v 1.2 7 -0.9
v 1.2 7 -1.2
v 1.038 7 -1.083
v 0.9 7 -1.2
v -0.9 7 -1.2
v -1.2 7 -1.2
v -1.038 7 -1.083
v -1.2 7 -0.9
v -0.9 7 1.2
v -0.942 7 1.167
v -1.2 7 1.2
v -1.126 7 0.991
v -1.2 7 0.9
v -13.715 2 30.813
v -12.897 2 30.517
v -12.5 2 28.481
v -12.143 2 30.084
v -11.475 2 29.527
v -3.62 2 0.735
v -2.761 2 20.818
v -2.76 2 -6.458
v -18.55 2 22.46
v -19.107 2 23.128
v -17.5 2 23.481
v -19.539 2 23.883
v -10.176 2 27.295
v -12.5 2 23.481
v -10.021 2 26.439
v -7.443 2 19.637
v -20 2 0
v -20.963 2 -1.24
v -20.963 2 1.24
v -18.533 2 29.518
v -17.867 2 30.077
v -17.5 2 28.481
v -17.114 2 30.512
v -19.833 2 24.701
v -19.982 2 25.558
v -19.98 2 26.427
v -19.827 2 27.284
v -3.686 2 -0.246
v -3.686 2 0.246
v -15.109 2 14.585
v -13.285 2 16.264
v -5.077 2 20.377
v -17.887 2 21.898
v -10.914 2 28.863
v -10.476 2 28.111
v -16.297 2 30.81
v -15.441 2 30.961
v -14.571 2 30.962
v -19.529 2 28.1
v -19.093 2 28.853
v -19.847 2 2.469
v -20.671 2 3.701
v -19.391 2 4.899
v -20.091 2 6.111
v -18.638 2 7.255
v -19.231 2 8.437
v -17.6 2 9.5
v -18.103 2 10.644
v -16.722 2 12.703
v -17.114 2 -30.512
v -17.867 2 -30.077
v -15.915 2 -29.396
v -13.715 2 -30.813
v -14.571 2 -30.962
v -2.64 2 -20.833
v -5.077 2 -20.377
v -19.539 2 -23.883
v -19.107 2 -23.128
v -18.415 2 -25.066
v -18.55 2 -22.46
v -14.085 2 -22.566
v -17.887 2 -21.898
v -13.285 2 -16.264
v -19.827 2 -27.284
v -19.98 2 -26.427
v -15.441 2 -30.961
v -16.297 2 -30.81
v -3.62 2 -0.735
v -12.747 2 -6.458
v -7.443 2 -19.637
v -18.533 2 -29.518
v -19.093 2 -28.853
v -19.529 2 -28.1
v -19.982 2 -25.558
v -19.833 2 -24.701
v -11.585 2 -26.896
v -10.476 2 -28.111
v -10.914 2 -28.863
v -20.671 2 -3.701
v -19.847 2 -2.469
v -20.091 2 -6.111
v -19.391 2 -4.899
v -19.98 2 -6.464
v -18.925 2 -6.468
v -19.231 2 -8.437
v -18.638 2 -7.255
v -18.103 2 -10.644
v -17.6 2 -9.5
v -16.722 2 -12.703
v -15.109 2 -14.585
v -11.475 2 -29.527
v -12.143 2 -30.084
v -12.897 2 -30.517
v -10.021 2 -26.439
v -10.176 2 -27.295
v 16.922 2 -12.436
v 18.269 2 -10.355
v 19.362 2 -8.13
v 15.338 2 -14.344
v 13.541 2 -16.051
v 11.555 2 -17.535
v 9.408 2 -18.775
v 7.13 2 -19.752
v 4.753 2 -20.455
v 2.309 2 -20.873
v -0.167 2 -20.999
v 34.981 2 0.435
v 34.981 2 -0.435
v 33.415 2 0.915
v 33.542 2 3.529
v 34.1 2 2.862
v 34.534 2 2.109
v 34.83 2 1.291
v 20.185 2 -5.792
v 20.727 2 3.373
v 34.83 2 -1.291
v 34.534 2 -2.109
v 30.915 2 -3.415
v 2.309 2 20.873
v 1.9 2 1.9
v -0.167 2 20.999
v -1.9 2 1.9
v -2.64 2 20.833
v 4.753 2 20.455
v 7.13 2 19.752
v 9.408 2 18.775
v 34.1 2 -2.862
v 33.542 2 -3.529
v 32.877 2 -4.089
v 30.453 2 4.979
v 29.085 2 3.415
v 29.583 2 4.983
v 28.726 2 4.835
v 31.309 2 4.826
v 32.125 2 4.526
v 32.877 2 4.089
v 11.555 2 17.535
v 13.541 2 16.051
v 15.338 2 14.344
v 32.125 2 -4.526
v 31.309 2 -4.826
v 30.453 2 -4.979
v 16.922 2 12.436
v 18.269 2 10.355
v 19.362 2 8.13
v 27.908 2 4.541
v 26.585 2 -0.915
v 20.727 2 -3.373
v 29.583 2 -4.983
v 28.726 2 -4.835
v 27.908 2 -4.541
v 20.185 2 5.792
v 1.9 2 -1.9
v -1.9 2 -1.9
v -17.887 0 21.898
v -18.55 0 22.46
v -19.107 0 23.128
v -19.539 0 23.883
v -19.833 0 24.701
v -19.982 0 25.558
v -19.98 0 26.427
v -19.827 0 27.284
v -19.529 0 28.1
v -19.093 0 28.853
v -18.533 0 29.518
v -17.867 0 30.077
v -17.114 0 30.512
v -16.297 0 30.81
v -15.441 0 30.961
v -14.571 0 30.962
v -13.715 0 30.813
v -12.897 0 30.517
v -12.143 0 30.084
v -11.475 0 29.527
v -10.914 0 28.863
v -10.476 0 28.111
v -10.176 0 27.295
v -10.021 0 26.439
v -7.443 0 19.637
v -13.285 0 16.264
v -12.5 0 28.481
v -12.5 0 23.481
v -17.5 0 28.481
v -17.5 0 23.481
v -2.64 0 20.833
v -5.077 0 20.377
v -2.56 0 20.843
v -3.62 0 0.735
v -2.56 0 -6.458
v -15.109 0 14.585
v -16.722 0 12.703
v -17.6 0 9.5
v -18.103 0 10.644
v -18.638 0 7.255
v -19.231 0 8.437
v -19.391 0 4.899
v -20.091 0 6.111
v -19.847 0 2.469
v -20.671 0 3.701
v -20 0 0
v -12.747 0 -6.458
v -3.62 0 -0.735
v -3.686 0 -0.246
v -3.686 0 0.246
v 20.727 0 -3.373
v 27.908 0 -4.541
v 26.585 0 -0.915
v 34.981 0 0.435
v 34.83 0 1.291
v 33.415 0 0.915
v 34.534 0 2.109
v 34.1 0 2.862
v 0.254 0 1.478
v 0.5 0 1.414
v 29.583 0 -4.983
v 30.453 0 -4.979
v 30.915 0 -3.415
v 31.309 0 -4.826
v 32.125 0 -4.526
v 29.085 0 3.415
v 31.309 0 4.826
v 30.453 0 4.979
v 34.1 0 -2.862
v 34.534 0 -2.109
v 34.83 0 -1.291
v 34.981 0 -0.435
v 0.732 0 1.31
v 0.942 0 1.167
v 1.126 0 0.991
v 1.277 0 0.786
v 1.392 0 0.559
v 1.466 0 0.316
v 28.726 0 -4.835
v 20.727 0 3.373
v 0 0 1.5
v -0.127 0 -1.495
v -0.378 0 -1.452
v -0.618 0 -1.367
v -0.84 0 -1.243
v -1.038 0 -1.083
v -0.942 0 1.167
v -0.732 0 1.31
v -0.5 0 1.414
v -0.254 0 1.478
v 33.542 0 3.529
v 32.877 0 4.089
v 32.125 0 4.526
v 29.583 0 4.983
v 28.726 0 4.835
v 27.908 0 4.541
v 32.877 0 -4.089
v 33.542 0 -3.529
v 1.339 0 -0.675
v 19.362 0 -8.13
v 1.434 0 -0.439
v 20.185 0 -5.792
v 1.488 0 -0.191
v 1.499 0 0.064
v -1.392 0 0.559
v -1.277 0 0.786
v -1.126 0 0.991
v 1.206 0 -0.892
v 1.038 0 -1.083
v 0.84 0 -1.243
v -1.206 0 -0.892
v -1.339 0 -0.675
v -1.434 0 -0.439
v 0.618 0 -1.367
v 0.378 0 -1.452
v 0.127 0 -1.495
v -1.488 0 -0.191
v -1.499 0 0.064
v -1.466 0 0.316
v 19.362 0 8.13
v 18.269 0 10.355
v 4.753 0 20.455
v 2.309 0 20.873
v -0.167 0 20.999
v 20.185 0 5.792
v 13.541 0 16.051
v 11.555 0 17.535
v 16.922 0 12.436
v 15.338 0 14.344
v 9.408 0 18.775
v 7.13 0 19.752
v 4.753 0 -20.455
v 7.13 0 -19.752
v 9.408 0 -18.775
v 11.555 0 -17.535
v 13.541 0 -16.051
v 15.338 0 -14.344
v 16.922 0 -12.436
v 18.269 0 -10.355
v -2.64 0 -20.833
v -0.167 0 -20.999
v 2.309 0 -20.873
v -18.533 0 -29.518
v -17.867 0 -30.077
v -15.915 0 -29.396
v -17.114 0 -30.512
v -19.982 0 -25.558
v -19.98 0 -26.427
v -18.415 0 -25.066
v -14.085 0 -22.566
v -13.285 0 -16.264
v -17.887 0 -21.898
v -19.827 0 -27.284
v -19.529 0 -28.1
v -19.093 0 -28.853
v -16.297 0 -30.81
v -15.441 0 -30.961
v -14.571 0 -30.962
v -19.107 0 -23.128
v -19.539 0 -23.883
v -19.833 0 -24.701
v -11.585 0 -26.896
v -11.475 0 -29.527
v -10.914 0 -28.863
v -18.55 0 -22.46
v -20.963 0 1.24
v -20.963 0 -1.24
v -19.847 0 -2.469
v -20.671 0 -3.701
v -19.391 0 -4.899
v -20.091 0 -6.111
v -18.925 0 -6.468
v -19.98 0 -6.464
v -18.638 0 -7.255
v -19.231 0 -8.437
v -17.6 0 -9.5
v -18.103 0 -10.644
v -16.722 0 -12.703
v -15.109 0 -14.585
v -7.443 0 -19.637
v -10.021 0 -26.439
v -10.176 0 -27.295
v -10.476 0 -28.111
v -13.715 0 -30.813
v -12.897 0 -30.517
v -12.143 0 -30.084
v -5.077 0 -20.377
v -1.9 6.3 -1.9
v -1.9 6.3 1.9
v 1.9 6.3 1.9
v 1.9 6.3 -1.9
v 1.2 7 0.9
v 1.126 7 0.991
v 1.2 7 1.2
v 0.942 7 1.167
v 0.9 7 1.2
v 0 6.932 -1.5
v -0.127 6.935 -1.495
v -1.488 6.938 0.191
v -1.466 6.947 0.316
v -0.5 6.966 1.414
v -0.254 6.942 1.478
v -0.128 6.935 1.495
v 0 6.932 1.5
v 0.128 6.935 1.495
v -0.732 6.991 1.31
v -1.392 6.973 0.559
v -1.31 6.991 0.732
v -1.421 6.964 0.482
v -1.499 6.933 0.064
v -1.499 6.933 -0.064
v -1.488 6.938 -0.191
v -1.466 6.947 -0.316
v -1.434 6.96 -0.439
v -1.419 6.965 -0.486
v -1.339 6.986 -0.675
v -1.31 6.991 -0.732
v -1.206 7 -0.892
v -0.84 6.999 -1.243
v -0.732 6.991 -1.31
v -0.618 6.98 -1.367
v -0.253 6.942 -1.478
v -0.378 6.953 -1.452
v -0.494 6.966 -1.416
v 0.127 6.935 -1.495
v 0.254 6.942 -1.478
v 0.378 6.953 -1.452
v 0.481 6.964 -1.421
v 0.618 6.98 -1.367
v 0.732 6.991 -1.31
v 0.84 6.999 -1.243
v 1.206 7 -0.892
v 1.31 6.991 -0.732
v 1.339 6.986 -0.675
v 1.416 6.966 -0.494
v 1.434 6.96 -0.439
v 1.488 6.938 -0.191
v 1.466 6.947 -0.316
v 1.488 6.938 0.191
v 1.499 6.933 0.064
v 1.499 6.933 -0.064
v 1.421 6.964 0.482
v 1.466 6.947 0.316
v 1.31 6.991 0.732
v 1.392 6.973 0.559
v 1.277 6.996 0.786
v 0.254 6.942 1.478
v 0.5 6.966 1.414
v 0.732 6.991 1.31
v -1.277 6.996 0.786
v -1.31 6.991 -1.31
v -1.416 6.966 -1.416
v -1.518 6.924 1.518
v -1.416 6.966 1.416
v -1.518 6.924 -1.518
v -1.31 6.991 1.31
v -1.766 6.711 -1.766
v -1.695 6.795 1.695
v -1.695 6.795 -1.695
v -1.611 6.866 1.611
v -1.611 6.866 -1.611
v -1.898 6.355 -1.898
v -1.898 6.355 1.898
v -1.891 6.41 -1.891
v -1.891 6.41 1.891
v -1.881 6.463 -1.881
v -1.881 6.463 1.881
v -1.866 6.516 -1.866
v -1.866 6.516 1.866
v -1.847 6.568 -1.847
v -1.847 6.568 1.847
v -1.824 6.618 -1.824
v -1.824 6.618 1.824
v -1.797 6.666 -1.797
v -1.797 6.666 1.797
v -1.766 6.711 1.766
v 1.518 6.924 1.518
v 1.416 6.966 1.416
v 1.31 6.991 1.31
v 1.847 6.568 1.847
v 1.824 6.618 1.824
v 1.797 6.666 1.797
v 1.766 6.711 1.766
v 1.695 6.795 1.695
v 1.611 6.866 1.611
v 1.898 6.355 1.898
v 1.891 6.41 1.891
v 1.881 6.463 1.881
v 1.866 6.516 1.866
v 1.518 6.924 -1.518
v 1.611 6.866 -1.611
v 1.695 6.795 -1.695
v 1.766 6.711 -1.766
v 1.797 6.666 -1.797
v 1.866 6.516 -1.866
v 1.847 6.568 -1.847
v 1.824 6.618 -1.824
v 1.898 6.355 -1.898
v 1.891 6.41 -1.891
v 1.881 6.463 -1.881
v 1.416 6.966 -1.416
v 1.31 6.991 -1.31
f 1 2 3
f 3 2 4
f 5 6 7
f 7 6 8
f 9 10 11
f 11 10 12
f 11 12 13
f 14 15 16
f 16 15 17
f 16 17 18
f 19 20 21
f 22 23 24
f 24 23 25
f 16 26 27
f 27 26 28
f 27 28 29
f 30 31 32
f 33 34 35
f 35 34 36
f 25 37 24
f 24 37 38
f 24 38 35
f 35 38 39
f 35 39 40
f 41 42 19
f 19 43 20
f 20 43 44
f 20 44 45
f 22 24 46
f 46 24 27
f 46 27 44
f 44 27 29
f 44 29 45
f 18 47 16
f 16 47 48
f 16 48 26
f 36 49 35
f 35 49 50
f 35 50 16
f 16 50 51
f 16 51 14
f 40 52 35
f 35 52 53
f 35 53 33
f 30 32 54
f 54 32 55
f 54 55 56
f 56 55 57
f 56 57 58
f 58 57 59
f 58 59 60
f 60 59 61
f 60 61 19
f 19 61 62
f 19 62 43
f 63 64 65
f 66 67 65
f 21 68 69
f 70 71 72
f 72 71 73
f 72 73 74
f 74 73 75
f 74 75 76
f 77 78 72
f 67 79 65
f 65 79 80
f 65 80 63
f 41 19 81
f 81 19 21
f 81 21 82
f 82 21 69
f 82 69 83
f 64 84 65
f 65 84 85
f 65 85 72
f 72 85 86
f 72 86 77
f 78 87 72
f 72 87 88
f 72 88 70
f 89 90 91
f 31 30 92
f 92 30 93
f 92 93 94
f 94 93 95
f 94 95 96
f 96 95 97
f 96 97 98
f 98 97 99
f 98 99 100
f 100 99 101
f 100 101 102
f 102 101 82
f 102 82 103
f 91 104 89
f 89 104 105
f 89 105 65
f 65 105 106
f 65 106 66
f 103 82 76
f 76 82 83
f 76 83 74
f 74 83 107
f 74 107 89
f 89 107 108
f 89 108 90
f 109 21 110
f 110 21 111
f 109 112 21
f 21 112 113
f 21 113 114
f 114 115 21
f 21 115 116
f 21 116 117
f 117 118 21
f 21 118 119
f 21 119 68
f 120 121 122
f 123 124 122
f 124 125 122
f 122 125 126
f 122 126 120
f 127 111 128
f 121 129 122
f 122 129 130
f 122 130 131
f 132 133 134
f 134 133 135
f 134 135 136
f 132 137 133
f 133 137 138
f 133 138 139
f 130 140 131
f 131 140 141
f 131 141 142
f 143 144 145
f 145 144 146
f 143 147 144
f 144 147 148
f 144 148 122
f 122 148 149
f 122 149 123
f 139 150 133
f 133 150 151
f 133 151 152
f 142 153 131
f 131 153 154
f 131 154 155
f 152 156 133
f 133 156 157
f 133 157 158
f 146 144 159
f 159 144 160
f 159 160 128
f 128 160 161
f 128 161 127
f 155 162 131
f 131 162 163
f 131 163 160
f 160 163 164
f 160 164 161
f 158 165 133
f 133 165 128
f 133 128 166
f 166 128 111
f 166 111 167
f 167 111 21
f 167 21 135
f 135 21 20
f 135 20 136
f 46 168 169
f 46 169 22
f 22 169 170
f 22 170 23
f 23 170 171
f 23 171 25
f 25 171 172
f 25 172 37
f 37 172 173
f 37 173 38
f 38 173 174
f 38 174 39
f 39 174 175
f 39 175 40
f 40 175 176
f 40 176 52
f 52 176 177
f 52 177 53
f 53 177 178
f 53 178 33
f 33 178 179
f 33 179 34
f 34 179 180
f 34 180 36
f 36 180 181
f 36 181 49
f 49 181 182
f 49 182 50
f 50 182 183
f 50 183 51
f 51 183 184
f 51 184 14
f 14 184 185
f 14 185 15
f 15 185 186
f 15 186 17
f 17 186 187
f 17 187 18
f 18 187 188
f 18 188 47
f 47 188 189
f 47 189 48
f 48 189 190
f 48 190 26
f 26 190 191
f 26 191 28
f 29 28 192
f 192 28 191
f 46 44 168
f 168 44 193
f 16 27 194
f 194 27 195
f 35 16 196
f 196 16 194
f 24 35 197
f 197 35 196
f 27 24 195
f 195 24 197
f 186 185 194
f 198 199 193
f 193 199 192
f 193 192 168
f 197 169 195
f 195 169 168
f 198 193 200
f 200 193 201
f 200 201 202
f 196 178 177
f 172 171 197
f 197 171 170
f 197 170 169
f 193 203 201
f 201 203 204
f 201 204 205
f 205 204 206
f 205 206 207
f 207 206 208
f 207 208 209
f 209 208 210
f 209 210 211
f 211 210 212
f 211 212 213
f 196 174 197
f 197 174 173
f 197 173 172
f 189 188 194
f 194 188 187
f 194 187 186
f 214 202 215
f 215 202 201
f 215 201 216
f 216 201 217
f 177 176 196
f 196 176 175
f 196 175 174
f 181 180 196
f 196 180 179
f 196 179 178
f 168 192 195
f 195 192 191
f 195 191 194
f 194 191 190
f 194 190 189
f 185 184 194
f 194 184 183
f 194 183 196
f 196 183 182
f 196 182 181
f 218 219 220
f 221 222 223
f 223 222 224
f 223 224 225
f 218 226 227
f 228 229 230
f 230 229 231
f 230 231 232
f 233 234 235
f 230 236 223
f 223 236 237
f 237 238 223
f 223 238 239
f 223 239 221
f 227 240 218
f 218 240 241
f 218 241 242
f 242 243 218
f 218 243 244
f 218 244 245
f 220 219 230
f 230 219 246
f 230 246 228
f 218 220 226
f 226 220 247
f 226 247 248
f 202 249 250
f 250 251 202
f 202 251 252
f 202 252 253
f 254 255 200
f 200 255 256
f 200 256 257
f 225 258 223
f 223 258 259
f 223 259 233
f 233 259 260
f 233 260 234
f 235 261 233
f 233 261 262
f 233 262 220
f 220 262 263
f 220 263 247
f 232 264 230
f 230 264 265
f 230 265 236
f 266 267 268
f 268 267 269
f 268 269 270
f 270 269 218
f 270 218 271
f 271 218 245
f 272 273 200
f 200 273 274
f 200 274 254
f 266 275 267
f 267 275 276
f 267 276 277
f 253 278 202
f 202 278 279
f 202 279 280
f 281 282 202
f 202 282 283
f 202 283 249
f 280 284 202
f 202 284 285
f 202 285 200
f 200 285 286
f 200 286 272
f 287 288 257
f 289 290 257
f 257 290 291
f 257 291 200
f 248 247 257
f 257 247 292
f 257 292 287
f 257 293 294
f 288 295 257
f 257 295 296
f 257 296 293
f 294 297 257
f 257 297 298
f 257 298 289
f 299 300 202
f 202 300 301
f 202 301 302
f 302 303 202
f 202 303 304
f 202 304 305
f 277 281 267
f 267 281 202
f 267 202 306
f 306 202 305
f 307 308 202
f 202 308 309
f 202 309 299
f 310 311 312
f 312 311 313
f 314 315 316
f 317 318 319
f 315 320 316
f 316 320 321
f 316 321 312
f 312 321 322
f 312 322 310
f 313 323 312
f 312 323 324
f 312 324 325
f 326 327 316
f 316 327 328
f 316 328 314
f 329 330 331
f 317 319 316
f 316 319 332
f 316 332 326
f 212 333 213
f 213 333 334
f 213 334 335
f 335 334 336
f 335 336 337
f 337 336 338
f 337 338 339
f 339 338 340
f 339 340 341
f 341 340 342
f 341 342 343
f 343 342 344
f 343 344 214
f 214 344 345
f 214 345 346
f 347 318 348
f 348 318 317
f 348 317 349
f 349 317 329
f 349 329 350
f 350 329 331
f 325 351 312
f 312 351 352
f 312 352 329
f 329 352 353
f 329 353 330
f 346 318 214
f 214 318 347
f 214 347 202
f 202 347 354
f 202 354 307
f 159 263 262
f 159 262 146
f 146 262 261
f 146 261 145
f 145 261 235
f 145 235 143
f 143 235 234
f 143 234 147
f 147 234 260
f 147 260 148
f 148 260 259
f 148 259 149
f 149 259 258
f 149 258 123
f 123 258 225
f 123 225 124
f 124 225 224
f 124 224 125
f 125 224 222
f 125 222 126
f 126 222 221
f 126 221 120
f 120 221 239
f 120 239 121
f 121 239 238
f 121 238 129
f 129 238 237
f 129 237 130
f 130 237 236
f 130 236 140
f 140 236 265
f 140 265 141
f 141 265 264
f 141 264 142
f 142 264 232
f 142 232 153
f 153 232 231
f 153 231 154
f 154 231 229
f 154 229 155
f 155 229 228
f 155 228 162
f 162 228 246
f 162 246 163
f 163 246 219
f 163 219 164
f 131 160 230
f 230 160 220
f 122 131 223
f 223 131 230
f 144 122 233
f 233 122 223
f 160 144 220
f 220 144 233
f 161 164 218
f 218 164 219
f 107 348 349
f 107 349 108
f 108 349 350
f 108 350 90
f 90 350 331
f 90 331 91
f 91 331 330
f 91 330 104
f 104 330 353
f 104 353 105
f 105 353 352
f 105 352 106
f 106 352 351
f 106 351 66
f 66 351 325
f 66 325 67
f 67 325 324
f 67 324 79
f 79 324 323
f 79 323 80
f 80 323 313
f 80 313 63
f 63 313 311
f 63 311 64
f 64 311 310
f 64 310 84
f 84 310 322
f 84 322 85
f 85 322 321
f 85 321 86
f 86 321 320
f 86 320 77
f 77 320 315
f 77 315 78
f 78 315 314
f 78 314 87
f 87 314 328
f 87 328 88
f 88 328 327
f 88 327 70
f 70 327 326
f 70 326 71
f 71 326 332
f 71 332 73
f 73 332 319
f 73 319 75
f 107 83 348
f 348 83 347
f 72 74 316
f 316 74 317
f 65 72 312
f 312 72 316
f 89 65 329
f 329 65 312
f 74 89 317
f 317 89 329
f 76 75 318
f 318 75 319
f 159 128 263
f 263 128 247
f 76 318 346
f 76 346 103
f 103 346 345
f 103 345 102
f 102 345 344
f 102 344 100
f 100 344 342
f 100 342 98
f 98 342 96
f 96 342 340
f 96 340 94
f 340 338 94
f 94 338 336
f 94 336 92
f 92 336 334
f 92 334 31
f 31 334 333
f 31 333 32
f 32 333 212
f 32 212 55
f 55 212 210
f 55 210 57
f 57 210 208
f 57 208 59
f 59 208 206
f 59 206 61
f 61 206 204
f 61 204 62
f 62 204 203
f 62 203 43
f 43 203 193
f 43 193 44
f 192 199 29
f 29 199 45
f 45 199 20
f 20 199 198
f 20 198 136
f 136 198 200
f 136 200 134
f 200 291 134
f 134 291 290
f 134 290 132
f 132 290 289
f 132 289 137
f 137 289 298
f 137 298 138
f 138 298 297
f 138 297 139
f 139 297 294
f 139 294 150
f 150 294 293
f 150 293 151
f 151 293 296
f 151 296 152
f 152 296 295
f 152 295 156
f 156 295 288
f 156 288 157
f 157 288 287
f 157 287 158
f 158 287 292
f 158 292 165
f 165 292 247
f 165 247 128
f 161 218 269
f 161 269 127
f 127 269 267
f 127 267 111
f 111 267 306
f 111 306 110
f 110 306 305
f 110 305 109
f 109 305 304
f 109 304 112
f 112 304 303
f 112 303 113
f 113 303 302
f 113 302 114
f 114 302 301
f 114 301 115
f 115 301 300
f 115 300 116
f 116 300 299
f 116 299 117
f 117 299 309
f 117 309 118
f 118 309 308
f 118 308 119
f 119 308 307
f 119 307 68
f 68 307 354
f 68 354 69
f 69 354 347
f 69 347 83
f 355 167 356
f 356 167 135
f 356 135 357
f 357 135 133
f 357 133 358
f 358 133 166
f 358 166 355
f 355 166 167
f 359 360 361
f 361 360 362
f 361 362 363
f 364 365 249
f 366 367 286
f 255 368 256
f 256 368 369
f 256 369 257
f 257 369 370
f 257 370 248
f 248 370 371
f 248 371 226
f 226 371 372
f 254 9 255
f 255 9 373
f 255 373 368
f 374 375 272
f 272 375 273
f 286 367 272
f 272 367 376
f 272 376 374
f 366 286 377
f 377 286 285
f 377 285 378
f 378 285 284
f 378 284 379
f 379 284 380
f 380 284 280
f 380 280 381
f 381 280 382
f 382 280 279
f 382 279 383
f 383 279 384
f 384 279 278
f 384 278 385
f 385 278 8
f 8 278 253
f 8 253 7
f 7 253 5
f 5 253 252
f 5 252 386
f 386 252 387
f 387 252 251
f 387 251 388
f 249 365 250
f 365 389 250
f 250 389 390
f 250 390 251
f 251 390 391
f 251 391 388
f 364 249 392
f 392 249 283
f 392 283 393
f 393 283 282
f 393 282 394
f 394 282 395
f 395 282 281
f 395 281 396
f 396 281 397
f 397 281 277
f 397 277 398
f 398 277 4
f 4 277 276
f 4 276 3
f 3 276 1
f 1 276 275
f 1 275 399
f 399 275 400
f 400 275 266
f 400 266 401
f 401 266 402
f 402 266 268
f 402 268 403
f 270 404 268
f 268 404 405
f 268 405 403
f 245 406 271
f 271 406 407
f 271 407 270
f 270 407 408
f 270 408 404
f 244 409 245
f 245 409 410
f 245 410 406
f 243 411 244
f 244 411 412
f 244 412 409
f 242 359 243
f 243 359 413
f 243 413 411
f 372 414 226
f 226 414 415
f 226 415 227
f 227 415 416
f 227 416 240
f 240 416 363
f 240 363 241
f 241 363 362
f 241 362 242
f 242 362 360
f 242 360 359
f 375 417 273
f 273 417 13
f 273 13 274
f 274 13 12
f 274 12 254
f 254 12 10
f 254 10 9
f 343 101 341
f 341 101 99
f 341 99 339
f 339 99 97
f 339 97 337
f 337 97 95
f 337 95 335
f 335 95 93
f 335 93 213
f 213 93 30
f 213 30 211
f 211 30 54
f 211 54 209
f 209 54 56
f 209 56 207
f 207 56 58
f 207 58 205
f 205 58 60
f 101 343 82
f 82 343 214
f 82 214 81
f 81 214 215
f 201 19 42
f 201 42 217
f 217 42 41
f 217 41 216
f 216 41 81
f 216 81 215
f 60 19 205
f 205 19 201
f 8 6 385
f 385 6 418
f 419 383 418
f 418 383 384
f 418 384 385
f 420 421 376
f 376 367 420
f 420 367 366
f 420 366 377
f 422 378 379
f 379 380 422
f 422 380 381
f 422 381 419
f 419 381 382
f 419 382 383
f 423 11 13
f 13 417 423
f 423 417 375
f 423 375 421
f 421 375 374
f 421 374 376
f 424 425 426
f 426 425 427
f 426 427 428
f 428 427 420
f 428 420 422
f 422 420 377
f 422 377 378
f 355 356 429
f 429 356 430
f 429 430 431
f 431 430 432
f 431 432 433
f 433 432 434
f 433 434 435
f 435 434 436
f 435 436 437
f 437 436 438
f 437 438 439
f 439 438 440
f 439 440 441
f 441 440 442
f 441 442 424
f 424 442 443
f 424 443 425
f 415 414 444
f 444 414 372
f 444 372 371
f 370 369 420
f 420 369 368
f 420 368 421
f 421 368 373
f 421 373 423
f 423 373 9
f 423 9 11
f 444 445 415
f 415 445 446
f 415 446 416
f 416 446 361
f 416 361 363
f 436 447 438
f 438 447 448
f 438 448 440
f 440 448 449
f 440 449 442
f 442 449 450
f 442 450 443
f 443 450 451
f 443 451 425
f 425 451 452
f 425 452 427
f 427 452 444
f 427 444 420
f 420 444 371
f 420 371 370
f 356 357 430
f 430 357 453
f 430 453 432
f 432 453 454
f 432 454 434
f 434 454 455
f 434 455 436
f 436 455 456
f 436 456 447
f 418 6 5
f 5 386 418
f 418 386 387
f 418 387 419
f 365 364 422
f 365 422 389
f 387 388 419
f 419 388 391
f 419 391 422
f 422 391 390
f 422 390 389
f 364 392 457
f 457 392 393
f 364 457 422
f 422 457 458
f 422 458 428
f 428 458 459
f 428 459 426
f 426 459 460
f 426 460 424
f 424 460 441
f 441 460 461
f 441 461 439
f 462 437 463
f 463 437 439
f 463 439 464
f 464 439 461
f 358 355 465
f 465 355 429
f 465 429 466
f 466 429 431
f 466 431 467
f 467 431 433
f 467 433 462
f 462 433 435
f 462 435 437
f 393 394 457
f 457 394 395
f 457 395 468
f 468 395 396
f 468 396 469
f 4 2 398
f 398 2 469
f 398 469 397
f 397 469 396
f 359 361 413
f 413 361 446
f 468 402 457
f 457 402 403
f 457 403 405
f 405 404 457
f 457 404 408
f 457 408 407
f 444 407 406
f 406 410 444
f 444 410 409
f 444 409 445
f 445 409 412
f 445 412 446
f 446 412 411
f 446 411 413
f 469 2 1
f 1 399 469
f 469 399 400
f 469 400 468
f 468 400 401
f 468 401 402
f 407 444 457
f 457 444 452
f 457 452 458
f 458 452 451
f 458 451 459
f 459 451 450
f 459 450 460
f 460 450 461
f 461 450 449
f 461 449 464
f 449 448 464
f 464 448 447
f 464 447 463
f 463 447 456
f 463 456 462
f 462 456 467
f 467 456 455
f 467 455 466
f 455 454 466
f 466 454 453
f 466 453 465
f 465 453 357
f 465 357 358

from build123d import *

# Parameters (mm, degrees)
SKETCH1_R           = 21
SKETCH1_W           = 5
SKETCH1_H           = 5
BOSS_EXTRUDE1_DEPTH = 2
SKETCH2_W           = 3.8
SKETCH2_H           = 3.8
BOSS_EXTRUDE2_DEPTH = 5
CUT_EXTRUDE1_REACH  = 49.263
SKETCH3_R           = 1.5
CUT_EXTRUDE2_REACH  = 49.009
FILLET1_R           = 0.7


with BuildPart() as part:
    # Sketch1 → Boss-Extrude1 (new body)
    # profile 1 of 6: a face of its own
    with BuildSketch(Plane(origin=(0, 0, 0), x_dir=(1, 0, 0), z_dir=(0, 1, 0))):
        Circle(SKETCH1_R)
    # profile 2 of 6: a face of its own
    with BuildSketch(Plane(origin=(0, 0, 0), x_dir=(1, 0, 0), z_dir=(0, 1, 0))):
        with BuildLine():
            Line((0, 0), (-17.886625066, -21.898189918))
            ThreePointArc((-17.886625066, -21.898189918), (-17.5, -30.310889132), (-10.021076233, -26.439366654))
            Line((-10.021076233, -26.439366654), (0, 0))
        make_face()
        with Locations((-15, -25.980762114)):
            Rectangle(SKETCH1_W, SKETCH1_H, mode=Mode.SUBTRACT)
    # profile 3 of 6: a face of its own
    with BuildSketch(Plane(origin=(0, 0, 0), x_dir=(1, 0, 0), z_dir=(0, 1, 0))):
        Circle(SKETCH1_R)
    # profile 4 of 6: a face of its own
    with BuildSketch(Plane(origin=(0, 0, 0), x_dir=(1, 0, 0), z_dir=(0, 1, 0))):
        with BuildLine():
            Line((0, 0), (27.907701299, -4.541176736))
            ThreePointArc((27.907701299, -4.541176736), (35, 0), (27.907701299, 4.541176736))
            Line((27.907701299, 4.541176736), (0, 0))
        make_face()
        Polygon((29.084936491, -3.415063509), (26.584936491, 0.915063509), (30.915063509, 3.415063509), (33.415063509, -0.915063509), align=None, mode=Mode.SUBTRACT)
    # profile 5 of 6: a face of its own
    with BuildSketch(Plane(origin=(0, 0, 0), x_dir=(1, 0, 0), z_dir=(0, 1, 0))):
        Circle(SKETCH1_R)
    # profile 6 of 6: a face of its own
    with BuildSketch(Plane(origin=(0, 0, 0), x_dir=(1, 0, 0), z_dir=(0, 1, 0))):
        with BuildLine():
            Line((0, 0), (-10.021076233, 26.439366654))
            ThreePointArc((-10.021076233, 26.439366654), (-17.5, 30.310889132), (-17.886625066, 21.898189918))
            Line((-17.886625066, 21.898189918), (0, 0))
        make_face()
        Polygon((-11.584936491, 26.895825623), (-14.084936491, 22.565698604), (-18.415063509, 25.065698604), (-15.915063509, 29.395825623), align=None, mode=Mode.SUBTRACT)
    extrude(amount=BOSS_EXTRUDE1_DEPTH)

    # Sketch2 → Boss-Extrude2 (add)
    with BuildSketch(Plane(origin=(0, 2, 0), x_dir=(1, 0, 0), z_dir=(0, 1, 0))):
        Rectangle(SKETCH2_W, SKETCH2_H)
    extrude(amount=BOSS_EXTRUDE2_DEPTH)

    # Sketch3 → Cut-Extrude1 (cut, up to next)
    with BuildSketch(Plane(origin=(0, 7, 0), x_dir=(1, 0, 0), z_dir=(0, 1, 0)), mode=Mode.PRIVATE) as cut_extrude1_sk1:
        with Locations(Location((0, 0, 0), (0, 0, 270))):
            Circle(SKETCH3_R)
    cut_extrude1_tool1 = extrude(cut_extrude1_sk1.sketch, amount=-CUT_EXTRUDE1_REACH, mode=Mode.PRIVATE) & part.part
    add(cut_extrude1_tool1.solids().sort_by_distance((0, 7, 0))[0], mode=Mode.SUBTRACT)

    # Sketch4 → Cut-Extrude2 (cut, up to next)
    with BuildSketch(Plane(origin=(0, 2, 0), x_dir=(1, 0, 0), z_dir=(0, 1, 0)), mode=Mode.PRIVATE) as cut_extrude2_sk1:
        with BuildLine():
            Line((-3.620274752, -0.735), (-17.599715907, -9.5))
            ThreePointArc((-17.599715907, -9.5), (-20, 0), (-17.599715907, 9.5))
            Line((-17.599715907, 9.5), (-3.620274752, 0.735))
            ThreePointArc((-3.620274752, 0.735), (-3.694132412, 0), (-3.620274752, -0.735))
        make_face()
    cut_extrude2_tool1 = extrude(cut_extrude2_sk1.sketch, amount=-CUT_EXTRUDE2_REACH, mode=Mode.PRIVATE) & part.part
    add(cut_extrude2_tool1.solids().sort_by_distance((-13.664779, 2, 0))[0], mode=Mode.SUBTRACT)

    # Fillet1
    # the kernel refuses this fillet: 0.7 mm, written as the material it takes off along each edge
    with BuildSketch(Plane(origin=(-1.9, 7, 3.65), x_dir=(0, -1, 0), z_dir=(0, 0, -1)), Plane(origin=(3.65, 7, 1.9), x_dir=(0, -1, 0), z_dir=(-1, 0, 0)), Plane(origin=(1.9, 7, -3.65), x_dir=(0, -1, 0), z_dir=(0, 0, 1)), Plane(origin=(-3.65, 7, -1.9), x_dir=(0, -1, 0), z_dir=(1, 0, 0))) as fillet1_piece_1:
        with BuildLine():
            CenterArc((FILLET1_R, -FILLET1_R), FILLET1_R, 90, 90)
            Line((0, -FILLET1_R), (0, 0))
            Line((0, 0), (FILLET1_R, 0))
        make_face()
    extrude(amount=7.3, mode=Mode.SUBTRACT)


solid = part.part
